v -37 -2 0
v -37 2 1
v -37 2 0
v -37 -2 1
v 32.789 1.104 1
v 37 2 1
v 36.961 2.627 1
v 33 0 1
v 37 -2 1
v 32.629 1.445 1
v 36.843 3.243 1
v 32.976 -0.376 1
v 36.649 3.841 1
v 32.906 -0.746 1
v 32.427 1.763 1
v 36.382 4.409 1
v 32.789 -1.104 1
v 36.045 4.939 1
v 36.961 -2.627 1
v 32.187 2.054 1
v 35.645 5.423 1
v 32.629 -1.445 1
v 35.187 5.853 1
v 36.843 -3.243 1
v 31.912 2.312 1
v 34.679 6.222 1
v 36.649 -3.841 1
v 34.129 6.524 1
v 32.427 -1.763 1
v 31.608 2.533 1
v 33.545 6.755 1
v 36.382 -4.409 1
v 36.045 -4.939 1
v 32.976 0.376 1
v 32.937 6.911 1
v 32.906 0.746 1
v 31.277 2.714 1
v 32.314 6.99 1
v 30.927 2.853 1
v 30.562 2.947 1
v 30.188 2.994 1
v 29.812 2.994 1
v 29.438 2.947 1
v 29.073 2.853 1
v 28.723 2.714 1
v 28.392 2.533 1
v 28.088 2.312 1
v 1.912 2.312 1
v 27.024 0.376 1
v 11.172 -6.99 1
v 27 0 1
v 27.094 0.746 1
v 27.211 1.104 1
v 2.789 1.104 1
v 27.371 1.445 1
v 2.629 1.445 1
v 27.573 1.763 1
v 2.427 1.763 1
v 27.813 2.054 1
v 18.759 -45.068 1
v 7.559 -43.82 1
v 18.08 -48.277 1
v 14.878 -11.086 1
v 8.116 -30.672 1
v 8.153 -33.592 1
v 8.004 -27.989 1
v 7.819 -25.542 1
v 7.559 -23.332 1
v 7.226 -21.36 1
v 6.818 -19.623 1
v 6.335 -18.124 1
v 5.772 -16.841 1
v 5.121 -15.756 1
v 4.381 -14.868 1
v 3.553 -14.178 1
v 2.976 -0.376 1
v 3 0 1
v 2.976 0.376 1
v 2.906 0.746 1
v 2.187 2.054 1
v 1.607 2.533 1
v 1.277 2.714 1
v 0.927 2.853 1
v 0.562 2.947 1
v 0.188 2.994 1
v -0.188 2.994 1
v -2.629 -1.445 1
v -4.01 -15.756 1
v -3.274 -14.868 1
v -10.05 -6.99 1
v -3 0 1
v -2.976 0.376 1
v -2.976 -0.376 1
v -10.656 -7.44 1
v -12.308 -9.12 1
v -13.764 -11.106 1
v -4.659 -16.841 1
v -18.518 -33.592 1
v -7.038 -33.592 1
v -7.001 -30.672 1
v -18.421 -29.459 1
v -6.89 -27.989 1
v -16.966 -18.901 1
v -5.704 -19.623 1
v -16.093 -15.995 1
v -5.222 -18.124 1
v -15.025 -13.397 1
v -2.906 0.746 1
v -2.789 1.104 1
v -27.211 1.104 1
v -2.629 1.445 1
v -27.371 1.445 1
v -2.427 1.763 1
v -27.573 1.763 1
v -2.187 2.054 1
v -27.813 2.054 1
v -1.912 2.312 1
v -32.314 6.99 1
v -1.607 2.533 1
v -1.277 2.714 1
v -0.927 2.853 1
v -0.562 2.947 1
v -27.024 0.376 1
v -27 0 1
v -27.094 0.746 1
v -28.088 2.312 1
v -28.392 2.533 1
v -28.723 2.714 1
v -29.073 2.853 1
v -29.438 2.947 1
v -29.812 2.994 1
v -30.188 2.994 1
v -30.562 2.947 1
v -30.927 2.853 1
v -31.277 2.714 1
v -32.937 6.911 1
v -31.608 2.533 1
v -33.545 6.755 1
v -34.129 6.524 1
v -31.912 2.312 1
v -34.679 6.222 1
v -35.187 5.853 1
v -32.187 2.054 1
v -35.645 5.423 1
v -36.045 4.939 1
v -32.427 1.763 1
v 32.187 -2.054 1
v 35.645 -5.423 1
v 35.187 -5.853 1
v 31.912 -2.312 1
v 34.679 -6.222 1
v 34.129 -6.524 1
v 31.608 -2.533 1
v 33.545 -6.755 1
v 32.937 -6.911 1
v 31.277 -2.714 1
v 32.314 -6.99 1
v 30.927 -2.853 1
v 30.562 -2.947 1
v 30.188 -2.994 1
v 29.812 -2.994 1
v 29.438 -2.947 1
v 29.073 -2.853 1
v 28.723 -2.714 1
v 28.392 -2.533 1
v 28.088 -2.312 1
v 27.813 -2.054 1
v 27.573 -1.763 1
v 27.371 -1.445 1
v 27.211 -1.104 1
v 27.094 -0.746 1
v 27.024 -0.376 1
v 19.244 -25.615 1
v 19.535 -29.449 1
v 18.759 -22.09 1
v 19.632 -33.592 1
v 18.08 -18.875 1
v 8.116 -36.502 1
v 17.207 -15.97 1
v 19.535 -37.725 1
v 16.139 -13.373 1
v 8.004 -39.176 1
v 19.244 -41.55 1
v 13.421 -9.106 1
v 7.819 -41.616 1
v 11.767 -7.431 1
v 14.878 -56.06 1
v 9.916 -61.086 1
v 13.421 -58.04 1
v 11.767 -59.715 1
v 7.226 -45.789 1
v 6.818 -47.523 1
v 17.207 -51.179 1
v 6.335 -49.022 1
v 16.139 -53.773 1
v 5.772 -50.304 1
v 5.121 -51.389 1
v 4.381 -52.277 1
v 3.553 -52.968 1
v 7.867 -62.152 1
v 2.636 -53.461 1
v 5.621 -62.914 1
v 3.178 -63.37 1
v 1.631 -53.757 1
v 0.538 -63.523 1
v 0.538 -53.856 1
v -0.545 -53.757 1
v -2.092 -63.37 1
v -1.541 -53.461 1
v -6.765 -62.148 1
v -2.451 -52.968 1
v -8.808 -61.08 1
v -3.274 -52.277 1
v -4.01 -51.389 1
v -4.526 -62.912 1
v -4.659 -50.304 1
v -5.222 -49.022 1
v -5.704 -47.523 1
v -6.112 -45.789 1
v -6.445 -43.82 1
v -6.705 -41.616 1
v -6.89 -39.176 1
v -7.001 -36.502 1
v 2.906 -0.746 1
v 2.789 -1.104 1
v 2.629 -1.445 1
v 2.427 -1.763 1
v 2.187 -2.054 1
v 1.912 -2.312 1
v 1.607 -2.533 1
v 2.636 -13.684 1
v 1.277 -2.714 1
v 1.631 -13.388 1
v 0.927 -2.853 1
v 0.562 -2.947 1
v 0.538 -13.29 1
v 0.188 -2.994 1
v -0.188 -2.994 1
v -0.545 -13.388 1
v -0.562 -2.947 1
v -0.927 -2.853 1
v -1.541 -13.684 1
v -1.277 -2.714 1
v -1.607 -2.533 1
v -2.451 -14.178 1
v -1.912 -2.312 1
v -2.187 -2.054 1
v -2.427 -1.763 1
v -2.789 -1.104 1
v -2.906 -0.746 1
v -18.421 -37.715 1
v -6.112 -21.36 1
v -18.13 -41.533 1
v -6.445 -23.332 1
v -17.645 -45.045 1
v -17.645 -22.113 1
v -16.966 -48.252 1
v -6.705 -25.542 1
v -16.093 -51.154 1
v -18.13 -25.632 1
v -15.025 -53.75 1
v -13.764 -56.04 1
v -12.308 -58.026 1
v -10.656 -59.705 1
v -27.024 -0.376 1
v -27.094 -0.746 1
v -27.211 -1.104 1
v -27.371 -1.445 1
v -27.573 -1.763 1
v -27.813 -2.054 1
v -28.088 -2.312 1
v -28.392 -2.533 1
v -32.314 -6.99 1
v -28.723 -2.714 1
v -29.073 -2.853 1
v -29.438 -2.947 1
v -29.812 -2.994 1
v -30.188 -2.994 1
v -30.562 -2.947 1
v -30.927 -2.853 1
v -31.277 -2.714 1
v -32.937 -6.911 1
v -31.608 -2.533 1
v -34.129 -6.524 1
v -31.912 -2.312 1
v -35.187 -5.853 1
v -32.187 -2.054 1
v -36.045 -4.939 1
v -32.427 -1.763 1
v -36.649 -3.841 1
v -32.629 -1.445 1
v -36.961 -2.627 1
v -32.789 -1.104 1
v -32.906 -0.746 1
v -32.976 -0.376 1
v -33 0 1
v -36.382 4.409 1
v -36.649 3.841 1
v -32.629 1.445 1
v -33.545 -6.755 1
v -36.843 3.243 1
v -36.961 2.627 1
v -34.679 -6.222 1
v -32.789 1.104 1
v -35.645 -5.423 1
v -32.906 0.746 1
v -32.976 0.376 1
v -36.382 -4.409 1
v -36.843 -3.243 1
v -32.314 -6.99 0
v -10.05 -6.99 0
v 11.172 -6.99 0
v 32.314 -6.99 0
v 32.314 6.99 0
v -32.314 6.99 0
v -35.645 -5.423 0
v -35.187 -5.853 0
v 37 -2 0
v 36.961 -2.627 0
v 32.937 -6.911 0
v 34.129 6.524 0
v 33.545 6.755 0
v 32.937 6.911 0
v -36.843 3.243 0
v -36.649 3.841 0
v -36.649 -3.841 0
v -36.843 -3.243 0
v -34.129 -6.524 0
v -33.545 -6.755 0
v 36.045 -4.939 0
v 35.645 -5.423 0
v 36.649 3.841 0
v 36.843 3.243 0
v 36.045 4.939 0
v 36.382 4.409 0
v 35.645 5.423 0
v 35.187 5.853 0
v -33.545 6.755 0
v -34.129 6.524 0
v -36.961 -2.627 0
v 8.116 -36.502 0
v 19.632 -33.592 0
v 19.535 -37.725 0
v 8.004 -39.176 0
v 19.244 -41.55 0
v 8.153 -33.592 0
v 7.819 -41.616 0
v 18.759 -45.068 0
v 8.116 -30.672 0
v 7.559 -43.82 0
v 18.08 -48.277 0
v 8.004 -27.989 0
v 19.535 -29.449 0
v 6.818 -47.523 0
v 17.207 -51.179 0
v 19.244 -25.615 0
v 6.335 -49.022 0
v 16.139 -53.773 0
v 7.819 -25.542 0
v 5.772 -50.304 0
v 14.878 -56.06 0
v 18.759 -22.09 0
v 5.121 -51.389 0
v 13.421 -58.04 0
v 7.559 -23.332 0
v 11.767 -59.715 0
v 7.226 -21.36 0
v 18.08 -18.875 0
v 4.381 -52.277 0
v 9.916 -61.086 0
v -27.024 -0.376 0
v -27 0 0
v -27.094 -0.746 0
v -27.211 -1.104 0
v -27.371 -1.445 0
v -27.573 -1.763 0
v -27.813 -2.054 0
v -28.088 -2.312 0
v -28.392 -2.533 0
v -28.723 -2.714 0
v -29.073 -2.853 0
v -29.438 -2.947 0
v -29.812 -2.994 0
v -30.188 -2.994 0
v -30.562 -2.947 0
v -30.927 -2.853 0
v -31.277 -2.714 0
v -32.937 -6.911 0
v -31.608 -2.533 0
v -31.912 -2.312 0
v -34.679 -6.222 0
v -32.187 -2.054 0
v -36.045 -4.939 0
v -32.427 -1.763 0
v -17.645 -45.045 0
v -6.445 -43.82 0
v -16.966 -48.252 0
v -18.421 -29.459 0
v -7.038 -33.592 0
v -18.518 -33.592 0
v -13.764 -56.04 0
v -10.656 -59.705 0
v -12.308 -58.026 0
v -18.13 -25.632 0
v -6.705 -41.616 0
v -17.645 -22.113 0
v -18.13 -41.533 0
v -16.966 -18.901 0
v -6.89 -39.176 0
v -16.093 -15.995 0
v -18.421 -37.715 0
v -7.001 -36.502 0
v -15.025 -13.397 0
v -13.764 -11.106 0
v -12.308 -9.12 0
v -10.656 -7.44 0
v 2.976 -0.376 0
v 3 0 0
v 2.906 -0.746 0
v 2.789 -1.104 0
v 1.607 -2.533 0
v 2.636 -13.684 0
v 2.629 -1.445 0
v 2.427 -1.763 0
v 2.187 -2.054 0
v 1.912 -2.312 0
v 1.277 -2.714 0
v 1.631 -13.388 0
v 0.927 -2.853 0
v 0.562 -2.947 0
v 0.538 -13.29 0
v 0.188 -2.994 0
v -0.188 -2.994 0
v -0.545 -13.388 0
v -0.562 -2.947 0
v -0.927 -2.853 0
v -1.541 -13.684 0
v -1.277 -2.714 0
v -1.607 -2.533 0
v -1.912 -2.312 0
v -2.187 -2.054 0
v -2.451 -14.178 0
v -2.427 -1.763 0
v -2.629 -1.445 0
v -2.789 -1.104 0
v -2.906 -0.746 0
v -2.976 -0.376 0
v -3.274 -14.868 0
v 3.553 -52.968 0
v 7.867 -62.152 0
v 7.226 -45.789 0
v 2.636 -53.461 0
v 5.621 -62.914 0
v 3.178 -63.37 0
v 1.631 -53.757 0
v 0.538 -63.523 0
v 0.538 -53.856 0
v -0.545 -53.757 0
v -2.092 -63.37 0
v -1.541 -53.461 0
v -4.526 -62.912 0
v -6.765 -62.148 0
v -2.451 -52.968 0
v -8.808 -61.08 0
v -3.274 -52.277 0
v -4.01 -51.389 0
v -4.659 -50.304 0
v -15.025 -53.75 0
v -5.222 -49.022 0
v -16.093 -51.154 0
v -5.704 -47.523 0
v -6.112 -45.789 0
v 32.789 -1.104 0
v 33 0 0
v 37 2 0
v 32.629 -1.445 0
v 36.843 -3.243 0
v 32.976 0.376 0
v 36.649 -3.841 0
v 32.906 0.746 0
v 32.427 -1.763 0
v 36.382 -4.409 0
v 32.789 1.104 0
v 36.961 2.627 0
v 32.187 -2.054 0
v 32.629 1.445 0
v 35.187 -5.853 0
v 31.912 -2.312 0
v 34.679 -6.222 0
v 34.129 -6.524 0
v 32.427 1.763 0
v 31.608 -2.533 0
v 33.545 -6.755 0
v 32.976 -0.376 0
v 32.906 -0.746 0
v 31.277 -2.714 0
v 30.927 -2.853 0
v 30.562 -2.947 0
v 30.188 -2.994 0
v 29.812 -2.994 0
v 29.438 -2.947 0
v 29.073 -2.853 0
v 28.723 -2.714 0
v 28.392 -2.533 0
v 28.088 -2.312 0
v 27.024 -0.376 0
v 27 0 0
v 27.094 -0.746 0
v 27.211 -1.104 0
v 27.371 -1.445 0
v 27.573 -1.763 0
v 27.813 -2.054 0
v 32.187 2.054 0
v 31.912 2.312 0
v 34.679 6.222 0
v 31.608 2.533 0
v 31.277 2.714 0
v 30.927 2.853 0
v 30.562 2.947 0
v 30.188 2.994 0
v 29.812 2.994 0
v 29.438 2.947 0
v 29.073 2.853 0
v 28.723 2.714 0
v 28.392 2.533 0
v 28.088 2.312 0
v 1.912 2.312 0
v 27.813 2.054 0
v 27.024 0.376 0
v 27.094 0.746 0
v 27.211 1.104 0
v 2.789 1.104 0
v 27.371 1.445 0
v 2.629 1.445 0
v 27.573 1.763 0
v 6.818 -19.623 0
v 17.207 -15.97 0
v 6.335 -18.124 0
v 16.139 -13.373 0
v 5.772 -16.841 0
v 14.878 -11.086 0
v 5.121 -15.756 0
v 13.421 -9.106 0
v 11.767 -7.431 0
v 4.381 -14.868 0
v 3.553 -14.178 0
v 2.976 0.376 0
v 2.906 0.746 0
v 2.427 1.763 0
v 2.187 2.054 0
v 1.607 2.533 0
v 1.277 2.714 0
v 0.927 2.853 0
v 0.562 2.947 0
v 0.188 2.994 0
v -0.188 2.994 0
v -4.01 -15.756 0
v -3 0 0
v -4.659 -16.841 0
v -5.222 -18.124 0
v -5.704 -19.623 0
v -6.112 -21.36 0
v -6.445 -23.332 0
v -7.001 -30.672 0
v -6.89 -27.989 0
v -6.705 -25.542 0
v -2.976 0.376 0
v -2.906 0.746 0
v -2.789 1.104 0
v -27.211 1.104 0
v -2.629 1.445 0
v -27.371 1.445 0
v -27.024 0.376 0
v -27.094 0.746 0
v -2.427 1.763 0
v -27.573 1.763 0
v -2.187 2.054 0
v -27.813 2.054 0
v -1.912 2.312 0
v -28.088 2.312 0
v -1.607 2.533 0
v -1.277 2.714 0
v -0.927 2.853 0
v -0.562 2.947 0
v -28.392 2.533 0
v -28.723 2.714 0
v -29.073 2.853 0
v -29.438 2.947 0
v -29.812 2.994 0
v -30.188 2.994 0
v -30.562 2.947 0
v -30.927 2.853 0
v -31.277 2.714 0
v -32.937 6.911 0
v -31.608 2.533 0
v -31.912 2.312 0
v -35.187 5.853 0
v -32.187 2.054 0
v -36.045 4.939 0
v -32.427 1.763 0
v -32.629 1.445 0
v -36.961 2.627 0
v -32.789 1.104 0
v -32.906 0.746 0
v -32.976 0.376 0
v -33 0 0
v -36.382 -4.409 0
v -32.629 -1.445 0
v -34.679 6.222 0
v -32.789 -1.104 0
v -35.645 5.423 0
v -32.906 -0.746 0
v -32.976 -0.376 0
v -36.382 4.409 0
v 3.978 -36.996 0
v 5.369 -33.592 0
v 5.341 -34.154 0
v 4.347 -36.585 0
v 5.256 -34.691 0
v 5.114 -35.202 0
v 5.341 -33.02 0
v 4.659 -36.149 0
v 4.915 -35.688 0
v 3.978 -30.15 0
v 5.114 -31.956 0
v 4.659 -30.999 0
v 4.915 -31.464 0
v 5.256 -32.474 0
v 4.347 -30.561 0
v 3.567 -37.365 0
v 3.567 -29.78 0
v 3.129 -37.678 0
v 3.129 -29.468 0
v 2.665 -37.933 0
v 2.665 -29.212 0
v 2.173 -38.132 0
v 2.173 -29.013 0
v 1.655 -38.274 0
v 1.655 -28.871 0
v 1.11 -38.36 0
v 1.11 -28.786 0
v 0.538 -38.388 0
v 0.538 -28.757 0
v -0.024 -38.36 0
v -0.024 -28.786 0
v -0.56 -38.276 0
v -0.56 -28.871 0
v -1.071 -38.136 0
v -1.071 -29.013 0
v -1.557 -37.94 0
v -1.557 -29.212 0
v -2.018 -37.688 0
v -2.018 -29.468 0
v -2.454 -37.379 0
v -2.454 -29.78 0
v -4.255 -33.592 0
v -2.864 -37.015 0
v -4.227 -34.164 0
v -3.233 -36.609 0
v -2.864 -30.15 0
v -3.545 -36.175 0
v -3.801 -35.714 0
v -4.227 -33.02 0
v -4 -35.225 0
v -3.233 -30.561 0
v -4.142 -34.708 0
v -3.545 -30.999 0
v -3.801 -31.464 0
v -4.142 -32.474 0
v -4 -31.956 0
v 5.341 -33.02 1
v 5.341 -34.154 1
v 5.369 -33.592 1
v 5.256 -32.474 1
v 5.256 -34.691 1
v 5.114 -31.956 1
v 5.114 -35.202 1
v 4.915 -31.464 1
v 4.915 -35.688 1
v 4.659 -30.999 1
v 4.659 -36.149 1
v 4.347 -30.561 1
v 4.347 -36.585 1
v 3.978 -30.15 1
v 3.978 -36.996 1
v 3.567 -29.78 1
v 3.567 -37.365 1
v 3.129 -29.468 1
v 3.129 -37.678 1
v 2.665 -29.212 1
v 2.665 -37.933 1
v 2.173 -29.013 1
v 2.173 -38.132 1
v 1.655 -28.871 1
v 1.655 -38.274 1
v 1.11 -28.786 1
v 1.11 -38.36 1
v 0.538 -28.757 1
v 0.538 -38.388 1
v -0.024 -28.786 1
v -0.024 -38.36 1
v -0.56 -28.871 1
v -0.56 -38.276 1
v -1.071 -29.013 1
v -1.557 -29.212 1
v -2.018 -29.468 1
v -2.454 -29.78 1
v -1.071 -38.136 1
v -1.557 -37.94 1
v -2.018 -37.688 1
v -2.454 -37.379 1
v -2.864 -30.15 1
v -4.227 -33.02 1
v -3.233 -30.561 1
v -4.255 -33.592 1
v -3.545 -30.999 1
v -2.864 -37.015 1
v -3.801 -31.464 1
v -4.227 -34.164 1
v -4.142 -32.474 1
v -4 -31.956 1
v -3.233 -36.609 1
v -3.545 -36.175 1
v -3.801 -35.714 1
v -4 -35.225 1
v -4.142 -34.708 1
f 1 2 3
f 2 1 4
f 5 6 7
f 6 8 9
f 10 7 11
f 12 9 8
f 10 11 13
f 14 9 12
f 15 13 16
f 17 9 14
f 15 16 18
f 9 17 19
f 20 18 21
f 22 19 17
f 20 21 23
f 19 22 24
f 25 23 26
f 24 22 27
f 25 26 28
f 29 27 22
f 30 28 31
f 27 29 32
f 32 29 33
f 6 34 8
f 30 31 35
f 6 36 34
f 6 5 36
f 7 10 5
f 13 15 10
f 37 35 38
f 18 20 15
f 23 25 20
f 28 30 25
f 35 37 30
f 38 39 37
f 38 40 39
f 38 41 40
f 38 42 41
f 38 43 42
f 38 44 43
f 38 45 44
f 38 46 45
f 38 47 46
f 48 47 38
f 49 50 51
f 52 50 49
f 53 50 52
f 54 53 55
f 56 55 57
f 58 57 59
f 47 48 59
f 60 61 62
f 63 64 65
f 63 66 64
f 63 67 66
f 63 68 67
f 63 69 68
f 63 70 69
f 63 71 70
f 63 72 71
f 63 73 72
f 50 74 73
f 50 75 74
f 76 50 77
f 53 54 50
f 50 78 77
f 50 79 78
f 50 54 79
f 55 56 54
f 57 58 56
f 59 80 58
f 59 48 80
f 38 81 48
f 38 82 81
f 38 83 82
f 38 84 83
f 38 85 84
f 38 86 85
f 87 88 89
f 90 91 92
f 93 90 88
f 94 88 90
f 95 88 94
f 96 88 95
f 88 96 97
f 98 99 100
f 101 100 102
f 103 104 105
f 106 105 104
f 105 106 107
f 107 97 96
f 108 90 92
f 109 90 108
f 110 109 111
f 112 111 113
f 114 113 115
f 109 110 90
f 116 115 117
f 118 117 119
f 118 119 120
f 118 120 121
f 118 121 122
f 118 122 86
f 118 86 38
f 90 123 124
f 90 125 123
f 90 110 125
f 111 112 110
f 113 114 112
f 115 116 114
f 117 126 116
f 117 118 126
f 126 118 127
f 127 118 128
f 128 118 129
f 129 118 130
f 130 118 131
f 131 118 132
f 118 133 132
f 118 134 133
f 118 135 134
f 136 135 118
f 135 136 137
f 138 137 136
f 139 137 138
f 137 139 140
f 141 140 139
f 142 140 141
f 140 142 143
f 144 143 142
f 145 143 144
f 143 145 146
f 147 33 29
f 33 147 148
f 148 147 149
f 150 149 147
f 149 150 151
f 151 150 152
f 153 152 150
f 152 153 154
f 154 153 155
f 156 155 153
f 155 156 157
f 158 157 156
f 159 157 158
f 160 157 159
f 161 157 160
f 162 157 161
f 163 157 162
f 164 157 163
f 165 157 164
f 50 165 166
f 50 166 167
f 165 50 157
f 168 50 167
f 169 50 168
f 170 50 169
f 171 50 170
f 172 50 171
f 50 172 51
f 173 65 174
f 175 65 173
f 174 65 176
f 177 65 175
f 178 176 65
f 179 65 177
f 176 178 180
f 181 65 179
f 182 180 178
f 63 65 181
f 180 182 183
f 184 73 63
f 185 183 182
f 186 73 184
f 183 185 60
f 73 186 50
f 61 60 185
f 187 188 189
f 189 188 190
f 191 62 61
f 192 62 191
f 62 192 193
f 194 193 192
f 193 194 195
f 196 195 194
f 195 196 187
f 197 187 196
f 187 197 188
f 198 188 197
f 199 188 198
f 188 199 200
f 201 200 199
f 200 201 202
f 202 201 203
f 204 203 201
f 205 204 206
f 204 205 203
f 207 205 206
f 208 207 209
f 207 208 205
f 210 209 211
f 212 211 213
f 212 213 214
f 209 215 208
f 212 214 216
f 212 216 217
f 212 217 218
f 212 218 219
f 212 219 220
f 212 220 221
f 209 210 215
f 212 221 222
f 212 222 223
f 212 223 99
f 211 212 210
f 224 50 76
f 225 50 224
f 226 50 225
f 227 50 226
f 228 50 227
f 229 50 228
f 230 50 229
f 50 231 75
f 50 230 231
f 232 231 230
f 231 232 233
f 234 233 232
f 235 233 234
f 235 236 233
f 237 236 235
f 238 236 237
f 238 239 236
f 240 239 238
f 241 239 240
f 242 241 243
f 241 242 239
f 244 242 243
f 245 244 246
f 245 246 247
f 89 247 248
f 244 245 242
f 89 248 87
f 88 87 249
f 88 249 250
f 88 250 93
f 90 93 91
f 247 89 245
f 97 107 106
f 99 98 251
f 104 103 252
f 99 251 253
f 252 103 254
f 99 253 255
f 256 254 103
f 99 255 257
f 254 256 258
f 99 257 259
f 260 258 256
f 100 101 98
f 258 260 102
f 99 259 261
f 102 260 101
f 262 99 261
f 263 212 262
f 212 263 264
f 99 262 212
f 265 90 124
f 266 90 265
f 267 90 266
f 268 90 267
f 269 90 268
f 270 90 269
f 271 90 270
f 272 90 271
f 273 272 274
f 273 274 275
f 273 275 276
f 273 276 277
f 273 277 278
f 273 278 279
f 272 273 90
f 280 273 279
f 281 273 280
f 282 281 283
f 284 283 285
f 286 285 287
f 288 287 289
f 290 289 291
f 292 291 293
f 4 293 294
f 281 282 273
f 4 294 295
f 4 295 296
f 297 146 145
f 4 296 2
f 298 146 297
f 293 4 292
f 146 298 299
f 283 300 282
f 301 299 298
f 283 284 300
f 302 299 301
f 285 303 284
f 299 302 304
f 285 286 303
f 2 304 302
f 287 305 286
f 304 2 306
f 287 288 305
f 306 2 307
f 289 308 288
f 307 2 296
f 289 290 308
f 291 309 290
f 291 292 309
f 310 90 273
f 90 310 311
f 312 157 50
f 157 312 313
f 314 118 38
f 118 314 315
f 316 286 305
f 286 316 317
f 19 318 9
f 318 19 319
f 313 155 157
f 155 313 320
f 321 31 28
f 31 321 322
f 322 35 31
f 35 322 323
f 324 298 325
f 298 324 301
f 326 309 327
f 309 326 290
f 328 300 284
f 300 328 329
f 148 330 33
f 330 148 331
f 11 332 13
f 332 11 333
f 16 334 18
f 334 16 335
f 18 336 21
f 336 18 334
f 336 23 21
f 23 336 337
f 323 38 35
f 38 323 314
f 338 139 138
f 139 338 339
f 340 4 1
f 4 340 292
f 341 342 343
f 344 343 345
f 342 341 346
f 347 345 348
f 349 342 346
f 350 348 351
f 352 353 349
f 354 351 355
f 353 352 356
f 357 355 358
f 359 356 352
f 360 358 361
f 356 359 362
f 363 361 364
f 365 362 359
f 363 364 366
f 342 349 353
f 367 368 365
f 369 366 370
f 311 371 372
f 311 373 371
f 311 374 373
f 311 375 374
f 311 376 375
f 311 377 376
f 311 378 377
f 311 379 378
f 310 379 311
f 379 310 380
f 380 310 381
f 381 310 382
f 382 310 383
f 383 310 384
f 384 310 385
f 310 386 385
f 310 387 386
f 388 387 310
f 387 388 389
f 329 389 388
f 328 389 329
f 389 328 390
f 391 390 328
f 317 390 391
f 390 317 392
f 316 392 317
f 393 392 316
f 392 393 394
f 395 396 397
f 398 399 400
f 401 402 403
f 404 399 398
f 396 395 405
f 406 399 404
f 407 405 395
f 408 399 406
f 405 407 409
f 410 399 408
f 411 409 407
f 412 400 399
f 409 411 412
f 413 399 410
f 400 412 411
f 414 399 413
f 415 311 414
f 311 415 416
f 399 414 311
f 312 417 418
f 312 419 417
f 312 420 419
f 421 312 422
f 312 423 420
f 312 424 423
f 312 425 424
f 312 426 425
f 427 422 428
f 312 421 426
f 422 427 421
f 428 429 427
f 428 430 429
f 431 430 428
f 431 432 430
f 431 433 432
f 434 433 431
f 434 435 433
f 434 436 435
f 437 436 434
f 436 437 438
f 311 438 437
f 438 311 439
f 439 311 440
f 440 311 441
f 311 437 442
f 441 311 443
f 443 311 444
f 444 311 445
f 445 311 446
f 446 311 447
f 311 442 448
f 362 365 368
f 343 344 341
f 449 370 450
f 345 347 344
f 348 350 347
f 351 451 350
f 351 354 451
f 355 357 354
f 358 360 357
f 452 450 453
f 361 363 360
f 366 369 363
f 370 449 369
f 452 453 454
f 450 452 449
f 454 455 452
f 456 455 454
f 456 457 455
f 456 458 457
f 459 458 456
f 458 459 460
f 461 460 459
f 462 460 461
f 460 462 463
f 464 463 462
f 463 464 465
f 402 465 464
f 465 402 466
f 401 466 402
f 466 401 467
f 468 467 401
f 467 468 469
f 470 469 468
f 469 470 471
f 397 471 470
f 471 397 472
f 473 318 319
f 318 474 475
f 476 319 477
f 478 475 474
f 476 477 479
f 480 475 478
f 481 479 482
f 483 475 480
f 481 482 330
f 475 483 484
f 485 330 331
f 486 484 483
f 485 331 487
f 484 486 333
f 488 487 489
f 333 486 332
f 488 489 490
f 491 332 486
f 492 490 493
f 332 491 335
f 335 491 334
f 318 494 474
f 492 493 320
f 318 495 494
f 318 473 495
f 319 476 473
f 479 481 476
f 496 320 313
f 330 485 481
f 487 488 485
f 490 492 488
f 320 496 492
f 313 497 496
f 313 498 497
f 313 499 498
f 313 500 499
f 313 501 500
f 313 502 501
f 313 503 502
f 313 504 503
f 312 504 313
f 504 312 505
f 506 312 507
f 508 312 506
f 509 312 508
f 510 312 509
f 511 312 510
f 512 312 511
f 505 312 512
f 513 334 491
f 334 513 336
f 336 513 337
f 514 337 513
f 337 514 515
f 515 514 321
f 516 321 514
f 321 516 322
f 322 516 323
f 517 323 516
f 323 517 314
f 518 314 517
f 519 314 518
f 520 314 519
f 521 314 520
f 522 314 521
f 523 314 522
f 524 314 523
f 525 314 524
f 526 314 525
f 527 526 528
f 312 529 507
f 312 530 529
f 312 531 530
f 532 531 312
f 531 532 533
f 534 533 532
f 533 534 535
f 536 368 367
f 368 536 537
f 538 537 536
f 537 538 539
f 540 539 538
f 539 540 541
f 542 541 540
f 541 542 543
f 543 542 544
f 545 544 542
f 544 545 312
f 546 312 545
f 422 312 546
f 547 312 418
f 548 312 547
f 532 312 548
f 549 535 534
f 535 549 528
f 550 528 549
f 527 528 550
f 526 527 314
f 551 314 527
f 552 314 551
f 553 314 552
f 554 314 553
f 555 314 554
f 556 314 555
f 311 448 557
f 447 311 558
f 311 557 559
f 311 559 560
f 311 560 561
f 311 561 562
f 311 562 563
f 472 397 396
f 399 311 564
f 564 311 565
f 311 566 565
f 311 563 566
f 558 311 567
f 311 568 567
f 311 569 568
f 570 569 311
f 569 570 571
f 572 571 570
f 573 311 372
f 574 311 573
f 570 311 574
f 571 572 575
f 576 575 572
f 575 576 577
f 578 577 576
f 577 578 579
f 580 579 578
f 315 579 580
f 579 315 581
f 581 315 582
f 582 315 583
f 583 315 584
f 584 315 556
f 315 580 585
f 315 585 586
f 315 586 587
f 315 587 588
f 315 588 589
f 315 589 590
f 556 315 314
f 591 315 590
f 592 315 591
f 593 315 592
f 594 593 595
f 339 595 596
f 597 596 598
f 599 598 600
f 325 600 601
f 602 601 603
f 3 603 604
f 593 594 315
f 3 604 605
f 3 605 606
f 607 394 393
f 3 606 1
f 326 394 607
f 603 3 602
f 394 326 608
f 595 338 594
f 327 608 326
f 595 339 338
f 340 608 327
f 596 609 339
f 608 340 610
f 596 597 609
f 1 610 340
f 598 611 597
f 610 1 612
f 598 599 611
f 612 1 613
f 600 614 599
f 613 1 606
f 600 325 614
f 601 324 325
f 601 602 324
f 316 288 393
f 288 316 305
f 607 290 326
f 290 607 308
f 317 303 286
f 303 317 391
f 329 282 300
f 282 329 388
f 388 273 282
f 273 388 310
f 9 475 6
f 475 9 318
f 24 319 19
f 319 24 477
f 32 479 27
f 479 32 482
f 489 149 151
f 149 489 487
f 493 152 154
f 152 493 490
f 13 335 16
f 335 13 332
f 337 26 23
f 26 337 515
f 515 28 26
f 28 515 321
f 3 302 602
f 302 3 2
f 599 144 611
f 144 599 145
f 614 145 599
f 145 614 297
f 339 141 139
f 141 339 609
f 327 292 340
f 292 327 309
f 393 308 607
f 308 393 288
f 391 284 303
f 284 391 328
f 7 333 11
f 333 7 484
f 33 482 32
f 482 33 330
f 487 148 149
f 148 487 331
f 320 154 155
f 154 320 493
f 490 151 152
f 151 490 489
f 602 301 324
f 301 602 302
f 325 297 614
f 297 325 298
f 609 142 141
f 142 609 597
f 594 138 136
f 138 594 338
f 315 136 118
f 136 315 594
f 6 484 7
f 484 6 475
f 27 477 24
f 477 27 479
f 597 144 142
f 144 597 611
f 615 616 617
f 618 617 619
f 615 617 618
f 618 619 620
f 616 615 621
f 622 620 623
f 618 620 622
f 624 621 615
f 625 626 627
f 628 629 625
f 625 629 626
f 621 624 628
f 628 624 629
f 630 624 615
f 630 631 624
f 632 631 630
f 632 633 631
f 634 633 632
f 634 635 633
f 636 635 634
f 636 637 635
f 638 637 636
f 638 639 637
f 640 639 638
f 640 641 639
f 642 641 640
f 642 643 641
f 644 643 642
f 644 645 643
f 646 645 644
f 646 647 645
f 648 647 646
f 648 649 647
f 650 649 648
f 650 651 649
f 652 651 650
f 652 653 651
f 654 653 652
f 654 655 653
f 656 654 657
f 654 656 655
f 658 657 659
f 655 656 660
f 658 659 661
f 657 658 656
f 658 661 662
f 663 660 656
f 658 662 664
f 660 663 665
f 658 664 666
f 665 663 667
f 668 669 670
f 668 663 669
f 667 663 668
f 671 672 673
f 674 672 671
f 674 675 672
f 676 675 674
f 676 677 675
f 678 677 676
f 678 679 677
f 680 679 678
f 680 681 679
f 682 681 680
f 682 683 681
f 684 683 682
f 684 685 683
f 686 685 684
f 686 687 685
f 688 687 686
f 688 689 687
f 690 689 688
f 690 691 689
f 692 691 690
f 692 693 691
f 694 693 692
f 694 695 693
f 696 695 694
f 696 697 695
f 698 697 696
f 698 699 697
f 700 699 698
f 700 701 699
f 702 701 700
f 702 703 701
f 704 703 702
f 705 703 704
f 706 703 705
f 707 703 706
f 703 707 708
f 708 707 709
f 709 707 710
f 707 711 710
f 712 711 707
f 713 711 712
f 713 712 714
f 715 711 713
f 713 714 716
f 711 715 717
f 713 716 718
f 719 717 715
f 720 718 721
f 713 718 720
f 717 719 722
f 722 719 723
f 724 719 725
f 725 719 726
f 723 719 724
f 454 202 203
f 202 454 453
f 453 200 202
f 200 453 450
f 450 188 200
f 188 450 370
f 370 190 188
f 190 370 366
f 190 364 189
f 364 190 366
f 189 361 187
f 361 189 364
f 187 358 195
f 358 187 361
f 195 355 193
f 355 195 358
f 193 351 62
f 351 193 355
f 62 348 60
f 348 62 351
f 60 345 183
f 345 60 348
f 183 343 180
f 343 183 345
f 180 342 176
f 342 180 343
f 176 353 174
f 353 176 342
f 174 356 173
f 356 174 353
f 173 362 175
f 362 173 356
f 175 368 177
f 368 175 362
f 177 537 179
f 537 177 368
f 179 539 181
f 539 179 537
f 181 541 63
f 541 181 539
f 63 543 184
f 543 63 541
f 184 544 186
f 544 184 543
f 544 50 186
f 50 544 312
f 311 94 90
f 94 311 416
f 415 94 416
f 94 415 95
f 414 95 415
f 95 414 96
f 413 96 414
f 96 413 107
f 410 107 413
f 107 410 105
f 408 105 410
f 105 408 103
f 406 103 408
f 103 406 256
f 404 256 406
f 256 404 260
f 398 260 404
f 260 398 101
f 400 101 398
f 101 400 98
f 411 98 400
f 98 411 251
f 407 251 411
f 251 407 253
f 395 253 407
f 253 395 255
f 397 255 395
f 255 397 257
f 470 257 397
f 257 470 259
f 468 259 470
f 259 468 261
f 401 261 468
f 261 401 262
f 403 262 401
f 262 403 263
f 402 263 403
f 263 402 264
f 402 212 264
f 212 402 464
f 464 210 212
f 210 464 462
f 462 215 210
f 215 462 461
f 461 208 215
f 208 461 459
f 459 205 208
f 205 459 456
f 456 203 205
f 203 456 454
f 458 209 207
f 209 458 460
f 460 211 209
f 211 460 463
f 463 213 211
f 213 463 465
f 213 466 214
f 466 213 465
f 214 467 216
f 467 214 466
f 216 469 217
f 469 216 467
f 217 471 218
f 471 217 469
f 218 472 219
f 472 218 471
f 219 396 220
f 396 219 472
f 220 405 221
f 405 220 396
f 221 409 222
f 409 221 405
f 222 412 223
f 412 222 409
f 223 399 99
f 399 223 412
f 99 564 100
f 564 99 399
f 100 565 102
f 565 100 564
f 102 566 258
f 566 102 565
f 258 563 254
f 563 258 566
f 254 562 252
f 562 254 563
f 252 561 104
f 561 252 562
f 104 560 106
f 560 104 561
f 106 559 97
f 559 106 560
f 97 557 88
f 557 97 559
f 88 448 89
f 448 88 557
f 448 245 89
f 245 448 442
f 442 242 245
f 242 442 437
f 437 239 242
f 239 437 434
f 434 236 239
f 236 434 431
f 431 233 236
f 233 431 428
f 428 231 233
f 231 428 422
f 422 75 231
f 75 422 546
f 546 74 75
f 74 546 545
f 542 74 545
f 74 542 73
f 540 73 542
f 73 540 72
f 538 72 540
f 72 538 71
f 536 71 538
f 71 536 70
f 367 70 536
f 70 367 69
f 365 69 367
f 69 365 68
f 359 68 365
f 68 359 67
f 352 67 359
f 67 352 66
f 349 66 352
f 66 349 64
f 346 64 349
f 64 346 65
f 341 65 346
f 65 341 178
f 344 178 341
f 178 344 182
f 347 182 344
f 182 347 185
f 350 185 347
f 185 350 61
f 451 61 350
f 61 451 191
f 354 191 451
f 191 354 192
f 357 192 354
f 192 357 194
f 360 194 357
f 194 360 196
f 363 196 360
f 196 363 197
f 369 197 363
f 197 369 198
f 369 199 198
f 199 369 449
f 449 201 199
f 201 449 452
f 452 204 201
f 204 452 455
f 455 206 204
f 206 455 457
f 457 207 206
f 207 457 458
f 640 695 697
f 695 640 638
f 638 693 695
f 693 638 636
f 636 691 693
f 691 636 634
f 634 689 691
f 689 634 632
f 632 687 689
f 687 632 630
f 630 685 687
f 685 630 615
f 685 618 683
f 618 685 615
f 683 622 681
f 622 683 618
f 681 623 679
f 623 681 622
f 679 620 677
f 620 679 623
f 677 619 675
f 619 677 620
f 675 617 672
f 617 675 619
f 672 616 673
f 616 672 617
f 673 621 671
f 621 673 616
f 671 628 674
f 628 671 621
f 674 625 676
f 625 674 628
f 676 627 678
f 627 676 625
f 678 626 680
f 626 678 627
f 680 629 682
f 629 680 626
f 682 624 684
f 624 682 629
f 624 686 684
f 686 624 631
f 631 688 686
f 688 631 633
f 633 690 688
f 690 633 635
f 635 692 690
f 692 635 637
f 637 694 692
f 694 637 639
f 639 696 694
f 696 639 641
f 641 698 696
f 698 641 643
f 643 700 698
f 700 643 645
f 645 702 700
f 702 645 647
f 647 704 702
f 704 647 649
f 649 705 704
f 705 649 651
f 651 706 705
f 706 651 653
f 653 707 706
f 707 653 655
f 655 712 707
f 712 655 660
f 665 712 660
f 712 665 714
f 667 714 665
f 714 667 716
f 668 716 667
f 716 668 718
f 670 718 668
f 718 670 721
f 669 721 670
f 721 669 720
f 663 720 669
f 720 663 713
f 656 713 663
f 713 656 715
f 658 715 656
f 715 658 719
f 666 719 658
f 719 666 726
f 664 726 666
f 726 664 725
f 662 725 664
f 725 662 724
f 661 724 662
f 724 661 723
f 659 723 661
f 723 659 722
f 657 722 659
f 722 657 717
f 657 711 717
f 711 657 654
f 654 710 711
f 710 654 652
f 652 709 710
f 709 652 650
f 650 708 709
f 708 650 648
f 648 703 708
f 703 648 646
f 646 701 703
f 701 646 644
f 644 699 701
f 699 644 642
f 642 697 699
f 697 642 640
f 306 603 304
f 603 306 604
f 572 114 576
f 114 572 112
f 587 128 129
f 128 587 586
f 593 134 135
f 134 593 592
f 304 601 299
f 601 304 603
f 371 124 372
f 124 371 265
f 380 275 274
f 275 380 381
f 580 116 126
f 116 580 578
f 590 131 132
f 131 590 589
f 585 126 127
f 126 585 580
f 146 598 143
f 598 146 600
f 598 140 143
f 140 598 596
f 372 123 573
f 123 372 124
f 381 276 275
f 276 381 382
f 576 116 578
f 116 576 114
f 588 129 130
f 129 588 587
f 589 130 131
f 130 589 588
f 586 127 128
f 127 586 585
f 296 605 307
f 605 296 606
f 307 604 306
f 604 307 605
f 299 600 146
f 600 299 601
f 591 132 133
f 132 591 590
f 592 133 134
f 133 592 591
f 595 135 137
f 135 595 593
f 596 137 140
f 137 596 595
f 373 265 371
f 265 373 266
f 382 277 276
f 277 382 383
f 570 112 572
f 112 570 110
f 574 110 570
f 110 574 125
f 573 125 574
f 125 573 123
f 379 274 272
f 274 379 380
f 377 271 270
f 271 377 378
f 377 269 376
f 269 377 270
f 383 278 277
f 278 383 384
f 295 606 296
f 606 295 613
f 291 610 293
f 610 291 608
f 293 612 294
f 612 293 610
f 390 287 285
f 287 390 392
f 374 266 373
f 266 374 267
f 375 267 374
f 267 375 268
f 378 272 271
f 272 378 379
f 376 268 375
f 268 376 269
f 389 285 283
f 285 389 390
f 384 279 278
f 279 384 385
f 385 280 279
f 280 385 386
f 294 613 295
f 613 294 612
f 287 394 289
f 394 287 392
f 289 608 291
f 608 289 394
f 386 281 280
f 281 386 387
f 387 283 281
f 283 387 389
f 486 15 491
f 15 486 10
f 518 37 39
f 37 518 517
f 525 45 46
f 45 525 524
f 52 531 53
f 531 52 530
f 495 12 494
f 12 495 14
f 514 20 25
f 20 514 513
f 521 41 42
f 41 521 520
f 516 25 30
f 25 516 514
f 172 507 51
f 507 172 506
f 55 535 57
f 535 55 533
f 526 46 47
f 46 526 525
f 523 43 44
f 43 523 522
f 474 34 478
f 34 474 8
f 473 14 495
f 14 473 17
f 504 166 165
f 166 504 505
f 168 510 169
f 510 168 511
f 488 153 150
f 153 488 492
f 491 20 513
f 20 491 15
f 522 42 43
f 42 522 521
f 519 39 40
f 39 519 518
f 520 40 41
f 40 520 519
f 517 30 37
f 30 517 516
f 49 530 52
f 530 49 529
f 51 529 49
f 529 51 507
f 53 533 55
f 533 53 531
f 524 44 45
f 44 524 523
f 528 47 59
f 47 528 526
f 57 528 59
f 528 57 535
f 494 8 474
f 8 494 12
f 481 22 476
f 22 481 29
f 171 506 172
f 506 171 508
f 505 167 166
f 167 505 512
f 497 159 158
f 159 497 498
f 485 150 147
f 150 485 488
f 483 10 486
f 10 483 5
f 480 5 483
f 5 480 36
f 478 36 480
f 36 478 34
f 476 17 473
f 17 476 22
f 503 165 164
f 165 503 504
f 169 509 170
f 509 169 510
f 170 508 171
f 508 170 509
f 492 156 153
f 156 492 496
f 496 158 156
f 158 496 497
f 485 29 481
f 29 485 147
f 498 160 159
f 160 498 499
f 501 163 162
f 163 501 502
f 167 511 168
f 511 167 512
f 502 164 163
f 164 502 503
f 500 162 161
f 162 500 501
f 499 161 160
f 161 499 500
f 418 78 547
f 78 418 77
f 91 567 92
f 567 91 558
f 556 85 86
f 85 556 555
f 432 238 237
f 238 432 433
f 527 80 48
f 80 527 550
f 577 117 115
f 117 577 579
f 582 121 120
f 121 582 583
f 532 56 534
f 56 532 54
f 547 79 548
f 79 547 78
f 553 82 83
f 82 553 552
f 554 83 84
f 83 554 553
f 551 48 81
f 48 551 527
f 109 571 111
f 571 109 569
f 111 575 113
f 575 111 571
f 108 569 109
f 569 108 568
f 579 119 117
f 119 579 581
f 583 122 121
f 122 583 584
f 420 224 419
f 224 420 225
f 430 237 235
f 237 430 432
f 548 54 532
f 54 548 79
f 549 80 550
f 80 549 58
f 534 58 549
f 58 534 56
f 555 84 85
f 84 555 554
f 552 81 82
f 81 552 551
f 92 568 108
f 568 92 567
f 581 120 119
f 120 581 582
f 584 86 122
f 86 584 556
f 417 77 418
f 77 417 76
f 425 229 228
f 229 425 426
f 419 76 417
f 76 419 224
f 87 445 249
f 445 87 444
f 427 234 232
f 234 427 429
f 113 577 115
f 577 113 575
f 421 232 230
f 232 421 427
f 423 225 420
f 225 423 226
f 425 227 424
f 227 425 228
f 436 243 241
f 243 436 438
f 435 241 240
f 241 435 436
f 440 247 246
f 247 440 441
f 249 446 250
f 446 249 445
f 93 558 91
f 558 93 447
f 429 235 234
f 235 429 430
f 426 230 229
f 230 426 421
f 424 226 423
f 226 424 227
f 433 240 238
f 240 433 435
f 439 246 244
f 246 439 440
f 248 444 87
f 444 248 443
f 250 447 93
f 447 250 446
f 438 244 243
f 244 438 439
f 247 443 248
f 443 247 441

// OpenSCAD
$fn = 50;


difference() {
	union() {
		translate(v = [0, 0, 0]) {
			rotate(a = [0, 0, 0]) {
				hull() {
					translate(v = [-32.0000000000, 2.0000000000, 0]) {
						rotate(a = [0, 0, 0]) {
							translate(v = [0, 0, 0]) {
								rotate(a = [0, 0, 0]) {
									cylinder(h = 1, r = 5);
								}
							}
						}
					}
					translate(v = [32.0000000000, 2.0000000000, 0]) {
						rotate(a = [0, 0, 0]) {
							translate(v = [0, 0, 0]) {
								rotate(a = [0, 0, 0]) {
									cylinder(h = 1, r = 5);
								}
							}
						}
					}
					translate(v = [-32.0000000000, -2.0000000000, 0]) {
						rotate(a = [0, 0, 0]) {
							translate(v = [0, 0, 0]) {
								rotate(a = [0, 0, 0]) {
									cylinder(h = 1, r = 5);
								}
							}
						}
					}
					translate(v = [32.0000000000, -2.0000000000, 0]) {
						rotate(a = [0, 0, 0]) {
							translate(v = [0, 0, 0]) {
								rotate(a = [0, 0, 0]) {
									cylinder(h = 1, r = 5);
								}
							}
						}
					}
				}
			}
		}
		translate(v = [0, -5, 0]) {
			rotate(a = [0, 0, 0]) {
				linear_extrude(height = 1) {
					text(font = "DejaVu Sans Mono:style=Bold", halign = "center", size = 57.0000000000, text = "0", valign = "top");
				}
			}
		}
	}
	union() {
		translate(v = [-30.0000000000, 0.0000000000, -125.0000000000]) {
			rotate(a = [0, 0, 0]) {
				cylinder(h = 250, r = 3.0000000000);
			}
		}
		translate(v = [30.0000000000, 0.0000000000, -125.0000000000]) {
			rotate(a = [0, 0, 0]) {
				cylinder(h = 250, r = 3.0000000000);
			}
		}
		translate(v = [30.0000000000, 0.0000000000, -125.0000000000]) {
			rotate(a = [0, 0, 0]) {
				cylinder(h = 250, r = 3.0000000000);
			}
		}
		translate(v = [0, 0, -125.0000000000]) {
			rotate(a = [0, 0, 0]) {
				cylinder(h = 250, r = 3.0000000000);
			}
		}
	}
}
